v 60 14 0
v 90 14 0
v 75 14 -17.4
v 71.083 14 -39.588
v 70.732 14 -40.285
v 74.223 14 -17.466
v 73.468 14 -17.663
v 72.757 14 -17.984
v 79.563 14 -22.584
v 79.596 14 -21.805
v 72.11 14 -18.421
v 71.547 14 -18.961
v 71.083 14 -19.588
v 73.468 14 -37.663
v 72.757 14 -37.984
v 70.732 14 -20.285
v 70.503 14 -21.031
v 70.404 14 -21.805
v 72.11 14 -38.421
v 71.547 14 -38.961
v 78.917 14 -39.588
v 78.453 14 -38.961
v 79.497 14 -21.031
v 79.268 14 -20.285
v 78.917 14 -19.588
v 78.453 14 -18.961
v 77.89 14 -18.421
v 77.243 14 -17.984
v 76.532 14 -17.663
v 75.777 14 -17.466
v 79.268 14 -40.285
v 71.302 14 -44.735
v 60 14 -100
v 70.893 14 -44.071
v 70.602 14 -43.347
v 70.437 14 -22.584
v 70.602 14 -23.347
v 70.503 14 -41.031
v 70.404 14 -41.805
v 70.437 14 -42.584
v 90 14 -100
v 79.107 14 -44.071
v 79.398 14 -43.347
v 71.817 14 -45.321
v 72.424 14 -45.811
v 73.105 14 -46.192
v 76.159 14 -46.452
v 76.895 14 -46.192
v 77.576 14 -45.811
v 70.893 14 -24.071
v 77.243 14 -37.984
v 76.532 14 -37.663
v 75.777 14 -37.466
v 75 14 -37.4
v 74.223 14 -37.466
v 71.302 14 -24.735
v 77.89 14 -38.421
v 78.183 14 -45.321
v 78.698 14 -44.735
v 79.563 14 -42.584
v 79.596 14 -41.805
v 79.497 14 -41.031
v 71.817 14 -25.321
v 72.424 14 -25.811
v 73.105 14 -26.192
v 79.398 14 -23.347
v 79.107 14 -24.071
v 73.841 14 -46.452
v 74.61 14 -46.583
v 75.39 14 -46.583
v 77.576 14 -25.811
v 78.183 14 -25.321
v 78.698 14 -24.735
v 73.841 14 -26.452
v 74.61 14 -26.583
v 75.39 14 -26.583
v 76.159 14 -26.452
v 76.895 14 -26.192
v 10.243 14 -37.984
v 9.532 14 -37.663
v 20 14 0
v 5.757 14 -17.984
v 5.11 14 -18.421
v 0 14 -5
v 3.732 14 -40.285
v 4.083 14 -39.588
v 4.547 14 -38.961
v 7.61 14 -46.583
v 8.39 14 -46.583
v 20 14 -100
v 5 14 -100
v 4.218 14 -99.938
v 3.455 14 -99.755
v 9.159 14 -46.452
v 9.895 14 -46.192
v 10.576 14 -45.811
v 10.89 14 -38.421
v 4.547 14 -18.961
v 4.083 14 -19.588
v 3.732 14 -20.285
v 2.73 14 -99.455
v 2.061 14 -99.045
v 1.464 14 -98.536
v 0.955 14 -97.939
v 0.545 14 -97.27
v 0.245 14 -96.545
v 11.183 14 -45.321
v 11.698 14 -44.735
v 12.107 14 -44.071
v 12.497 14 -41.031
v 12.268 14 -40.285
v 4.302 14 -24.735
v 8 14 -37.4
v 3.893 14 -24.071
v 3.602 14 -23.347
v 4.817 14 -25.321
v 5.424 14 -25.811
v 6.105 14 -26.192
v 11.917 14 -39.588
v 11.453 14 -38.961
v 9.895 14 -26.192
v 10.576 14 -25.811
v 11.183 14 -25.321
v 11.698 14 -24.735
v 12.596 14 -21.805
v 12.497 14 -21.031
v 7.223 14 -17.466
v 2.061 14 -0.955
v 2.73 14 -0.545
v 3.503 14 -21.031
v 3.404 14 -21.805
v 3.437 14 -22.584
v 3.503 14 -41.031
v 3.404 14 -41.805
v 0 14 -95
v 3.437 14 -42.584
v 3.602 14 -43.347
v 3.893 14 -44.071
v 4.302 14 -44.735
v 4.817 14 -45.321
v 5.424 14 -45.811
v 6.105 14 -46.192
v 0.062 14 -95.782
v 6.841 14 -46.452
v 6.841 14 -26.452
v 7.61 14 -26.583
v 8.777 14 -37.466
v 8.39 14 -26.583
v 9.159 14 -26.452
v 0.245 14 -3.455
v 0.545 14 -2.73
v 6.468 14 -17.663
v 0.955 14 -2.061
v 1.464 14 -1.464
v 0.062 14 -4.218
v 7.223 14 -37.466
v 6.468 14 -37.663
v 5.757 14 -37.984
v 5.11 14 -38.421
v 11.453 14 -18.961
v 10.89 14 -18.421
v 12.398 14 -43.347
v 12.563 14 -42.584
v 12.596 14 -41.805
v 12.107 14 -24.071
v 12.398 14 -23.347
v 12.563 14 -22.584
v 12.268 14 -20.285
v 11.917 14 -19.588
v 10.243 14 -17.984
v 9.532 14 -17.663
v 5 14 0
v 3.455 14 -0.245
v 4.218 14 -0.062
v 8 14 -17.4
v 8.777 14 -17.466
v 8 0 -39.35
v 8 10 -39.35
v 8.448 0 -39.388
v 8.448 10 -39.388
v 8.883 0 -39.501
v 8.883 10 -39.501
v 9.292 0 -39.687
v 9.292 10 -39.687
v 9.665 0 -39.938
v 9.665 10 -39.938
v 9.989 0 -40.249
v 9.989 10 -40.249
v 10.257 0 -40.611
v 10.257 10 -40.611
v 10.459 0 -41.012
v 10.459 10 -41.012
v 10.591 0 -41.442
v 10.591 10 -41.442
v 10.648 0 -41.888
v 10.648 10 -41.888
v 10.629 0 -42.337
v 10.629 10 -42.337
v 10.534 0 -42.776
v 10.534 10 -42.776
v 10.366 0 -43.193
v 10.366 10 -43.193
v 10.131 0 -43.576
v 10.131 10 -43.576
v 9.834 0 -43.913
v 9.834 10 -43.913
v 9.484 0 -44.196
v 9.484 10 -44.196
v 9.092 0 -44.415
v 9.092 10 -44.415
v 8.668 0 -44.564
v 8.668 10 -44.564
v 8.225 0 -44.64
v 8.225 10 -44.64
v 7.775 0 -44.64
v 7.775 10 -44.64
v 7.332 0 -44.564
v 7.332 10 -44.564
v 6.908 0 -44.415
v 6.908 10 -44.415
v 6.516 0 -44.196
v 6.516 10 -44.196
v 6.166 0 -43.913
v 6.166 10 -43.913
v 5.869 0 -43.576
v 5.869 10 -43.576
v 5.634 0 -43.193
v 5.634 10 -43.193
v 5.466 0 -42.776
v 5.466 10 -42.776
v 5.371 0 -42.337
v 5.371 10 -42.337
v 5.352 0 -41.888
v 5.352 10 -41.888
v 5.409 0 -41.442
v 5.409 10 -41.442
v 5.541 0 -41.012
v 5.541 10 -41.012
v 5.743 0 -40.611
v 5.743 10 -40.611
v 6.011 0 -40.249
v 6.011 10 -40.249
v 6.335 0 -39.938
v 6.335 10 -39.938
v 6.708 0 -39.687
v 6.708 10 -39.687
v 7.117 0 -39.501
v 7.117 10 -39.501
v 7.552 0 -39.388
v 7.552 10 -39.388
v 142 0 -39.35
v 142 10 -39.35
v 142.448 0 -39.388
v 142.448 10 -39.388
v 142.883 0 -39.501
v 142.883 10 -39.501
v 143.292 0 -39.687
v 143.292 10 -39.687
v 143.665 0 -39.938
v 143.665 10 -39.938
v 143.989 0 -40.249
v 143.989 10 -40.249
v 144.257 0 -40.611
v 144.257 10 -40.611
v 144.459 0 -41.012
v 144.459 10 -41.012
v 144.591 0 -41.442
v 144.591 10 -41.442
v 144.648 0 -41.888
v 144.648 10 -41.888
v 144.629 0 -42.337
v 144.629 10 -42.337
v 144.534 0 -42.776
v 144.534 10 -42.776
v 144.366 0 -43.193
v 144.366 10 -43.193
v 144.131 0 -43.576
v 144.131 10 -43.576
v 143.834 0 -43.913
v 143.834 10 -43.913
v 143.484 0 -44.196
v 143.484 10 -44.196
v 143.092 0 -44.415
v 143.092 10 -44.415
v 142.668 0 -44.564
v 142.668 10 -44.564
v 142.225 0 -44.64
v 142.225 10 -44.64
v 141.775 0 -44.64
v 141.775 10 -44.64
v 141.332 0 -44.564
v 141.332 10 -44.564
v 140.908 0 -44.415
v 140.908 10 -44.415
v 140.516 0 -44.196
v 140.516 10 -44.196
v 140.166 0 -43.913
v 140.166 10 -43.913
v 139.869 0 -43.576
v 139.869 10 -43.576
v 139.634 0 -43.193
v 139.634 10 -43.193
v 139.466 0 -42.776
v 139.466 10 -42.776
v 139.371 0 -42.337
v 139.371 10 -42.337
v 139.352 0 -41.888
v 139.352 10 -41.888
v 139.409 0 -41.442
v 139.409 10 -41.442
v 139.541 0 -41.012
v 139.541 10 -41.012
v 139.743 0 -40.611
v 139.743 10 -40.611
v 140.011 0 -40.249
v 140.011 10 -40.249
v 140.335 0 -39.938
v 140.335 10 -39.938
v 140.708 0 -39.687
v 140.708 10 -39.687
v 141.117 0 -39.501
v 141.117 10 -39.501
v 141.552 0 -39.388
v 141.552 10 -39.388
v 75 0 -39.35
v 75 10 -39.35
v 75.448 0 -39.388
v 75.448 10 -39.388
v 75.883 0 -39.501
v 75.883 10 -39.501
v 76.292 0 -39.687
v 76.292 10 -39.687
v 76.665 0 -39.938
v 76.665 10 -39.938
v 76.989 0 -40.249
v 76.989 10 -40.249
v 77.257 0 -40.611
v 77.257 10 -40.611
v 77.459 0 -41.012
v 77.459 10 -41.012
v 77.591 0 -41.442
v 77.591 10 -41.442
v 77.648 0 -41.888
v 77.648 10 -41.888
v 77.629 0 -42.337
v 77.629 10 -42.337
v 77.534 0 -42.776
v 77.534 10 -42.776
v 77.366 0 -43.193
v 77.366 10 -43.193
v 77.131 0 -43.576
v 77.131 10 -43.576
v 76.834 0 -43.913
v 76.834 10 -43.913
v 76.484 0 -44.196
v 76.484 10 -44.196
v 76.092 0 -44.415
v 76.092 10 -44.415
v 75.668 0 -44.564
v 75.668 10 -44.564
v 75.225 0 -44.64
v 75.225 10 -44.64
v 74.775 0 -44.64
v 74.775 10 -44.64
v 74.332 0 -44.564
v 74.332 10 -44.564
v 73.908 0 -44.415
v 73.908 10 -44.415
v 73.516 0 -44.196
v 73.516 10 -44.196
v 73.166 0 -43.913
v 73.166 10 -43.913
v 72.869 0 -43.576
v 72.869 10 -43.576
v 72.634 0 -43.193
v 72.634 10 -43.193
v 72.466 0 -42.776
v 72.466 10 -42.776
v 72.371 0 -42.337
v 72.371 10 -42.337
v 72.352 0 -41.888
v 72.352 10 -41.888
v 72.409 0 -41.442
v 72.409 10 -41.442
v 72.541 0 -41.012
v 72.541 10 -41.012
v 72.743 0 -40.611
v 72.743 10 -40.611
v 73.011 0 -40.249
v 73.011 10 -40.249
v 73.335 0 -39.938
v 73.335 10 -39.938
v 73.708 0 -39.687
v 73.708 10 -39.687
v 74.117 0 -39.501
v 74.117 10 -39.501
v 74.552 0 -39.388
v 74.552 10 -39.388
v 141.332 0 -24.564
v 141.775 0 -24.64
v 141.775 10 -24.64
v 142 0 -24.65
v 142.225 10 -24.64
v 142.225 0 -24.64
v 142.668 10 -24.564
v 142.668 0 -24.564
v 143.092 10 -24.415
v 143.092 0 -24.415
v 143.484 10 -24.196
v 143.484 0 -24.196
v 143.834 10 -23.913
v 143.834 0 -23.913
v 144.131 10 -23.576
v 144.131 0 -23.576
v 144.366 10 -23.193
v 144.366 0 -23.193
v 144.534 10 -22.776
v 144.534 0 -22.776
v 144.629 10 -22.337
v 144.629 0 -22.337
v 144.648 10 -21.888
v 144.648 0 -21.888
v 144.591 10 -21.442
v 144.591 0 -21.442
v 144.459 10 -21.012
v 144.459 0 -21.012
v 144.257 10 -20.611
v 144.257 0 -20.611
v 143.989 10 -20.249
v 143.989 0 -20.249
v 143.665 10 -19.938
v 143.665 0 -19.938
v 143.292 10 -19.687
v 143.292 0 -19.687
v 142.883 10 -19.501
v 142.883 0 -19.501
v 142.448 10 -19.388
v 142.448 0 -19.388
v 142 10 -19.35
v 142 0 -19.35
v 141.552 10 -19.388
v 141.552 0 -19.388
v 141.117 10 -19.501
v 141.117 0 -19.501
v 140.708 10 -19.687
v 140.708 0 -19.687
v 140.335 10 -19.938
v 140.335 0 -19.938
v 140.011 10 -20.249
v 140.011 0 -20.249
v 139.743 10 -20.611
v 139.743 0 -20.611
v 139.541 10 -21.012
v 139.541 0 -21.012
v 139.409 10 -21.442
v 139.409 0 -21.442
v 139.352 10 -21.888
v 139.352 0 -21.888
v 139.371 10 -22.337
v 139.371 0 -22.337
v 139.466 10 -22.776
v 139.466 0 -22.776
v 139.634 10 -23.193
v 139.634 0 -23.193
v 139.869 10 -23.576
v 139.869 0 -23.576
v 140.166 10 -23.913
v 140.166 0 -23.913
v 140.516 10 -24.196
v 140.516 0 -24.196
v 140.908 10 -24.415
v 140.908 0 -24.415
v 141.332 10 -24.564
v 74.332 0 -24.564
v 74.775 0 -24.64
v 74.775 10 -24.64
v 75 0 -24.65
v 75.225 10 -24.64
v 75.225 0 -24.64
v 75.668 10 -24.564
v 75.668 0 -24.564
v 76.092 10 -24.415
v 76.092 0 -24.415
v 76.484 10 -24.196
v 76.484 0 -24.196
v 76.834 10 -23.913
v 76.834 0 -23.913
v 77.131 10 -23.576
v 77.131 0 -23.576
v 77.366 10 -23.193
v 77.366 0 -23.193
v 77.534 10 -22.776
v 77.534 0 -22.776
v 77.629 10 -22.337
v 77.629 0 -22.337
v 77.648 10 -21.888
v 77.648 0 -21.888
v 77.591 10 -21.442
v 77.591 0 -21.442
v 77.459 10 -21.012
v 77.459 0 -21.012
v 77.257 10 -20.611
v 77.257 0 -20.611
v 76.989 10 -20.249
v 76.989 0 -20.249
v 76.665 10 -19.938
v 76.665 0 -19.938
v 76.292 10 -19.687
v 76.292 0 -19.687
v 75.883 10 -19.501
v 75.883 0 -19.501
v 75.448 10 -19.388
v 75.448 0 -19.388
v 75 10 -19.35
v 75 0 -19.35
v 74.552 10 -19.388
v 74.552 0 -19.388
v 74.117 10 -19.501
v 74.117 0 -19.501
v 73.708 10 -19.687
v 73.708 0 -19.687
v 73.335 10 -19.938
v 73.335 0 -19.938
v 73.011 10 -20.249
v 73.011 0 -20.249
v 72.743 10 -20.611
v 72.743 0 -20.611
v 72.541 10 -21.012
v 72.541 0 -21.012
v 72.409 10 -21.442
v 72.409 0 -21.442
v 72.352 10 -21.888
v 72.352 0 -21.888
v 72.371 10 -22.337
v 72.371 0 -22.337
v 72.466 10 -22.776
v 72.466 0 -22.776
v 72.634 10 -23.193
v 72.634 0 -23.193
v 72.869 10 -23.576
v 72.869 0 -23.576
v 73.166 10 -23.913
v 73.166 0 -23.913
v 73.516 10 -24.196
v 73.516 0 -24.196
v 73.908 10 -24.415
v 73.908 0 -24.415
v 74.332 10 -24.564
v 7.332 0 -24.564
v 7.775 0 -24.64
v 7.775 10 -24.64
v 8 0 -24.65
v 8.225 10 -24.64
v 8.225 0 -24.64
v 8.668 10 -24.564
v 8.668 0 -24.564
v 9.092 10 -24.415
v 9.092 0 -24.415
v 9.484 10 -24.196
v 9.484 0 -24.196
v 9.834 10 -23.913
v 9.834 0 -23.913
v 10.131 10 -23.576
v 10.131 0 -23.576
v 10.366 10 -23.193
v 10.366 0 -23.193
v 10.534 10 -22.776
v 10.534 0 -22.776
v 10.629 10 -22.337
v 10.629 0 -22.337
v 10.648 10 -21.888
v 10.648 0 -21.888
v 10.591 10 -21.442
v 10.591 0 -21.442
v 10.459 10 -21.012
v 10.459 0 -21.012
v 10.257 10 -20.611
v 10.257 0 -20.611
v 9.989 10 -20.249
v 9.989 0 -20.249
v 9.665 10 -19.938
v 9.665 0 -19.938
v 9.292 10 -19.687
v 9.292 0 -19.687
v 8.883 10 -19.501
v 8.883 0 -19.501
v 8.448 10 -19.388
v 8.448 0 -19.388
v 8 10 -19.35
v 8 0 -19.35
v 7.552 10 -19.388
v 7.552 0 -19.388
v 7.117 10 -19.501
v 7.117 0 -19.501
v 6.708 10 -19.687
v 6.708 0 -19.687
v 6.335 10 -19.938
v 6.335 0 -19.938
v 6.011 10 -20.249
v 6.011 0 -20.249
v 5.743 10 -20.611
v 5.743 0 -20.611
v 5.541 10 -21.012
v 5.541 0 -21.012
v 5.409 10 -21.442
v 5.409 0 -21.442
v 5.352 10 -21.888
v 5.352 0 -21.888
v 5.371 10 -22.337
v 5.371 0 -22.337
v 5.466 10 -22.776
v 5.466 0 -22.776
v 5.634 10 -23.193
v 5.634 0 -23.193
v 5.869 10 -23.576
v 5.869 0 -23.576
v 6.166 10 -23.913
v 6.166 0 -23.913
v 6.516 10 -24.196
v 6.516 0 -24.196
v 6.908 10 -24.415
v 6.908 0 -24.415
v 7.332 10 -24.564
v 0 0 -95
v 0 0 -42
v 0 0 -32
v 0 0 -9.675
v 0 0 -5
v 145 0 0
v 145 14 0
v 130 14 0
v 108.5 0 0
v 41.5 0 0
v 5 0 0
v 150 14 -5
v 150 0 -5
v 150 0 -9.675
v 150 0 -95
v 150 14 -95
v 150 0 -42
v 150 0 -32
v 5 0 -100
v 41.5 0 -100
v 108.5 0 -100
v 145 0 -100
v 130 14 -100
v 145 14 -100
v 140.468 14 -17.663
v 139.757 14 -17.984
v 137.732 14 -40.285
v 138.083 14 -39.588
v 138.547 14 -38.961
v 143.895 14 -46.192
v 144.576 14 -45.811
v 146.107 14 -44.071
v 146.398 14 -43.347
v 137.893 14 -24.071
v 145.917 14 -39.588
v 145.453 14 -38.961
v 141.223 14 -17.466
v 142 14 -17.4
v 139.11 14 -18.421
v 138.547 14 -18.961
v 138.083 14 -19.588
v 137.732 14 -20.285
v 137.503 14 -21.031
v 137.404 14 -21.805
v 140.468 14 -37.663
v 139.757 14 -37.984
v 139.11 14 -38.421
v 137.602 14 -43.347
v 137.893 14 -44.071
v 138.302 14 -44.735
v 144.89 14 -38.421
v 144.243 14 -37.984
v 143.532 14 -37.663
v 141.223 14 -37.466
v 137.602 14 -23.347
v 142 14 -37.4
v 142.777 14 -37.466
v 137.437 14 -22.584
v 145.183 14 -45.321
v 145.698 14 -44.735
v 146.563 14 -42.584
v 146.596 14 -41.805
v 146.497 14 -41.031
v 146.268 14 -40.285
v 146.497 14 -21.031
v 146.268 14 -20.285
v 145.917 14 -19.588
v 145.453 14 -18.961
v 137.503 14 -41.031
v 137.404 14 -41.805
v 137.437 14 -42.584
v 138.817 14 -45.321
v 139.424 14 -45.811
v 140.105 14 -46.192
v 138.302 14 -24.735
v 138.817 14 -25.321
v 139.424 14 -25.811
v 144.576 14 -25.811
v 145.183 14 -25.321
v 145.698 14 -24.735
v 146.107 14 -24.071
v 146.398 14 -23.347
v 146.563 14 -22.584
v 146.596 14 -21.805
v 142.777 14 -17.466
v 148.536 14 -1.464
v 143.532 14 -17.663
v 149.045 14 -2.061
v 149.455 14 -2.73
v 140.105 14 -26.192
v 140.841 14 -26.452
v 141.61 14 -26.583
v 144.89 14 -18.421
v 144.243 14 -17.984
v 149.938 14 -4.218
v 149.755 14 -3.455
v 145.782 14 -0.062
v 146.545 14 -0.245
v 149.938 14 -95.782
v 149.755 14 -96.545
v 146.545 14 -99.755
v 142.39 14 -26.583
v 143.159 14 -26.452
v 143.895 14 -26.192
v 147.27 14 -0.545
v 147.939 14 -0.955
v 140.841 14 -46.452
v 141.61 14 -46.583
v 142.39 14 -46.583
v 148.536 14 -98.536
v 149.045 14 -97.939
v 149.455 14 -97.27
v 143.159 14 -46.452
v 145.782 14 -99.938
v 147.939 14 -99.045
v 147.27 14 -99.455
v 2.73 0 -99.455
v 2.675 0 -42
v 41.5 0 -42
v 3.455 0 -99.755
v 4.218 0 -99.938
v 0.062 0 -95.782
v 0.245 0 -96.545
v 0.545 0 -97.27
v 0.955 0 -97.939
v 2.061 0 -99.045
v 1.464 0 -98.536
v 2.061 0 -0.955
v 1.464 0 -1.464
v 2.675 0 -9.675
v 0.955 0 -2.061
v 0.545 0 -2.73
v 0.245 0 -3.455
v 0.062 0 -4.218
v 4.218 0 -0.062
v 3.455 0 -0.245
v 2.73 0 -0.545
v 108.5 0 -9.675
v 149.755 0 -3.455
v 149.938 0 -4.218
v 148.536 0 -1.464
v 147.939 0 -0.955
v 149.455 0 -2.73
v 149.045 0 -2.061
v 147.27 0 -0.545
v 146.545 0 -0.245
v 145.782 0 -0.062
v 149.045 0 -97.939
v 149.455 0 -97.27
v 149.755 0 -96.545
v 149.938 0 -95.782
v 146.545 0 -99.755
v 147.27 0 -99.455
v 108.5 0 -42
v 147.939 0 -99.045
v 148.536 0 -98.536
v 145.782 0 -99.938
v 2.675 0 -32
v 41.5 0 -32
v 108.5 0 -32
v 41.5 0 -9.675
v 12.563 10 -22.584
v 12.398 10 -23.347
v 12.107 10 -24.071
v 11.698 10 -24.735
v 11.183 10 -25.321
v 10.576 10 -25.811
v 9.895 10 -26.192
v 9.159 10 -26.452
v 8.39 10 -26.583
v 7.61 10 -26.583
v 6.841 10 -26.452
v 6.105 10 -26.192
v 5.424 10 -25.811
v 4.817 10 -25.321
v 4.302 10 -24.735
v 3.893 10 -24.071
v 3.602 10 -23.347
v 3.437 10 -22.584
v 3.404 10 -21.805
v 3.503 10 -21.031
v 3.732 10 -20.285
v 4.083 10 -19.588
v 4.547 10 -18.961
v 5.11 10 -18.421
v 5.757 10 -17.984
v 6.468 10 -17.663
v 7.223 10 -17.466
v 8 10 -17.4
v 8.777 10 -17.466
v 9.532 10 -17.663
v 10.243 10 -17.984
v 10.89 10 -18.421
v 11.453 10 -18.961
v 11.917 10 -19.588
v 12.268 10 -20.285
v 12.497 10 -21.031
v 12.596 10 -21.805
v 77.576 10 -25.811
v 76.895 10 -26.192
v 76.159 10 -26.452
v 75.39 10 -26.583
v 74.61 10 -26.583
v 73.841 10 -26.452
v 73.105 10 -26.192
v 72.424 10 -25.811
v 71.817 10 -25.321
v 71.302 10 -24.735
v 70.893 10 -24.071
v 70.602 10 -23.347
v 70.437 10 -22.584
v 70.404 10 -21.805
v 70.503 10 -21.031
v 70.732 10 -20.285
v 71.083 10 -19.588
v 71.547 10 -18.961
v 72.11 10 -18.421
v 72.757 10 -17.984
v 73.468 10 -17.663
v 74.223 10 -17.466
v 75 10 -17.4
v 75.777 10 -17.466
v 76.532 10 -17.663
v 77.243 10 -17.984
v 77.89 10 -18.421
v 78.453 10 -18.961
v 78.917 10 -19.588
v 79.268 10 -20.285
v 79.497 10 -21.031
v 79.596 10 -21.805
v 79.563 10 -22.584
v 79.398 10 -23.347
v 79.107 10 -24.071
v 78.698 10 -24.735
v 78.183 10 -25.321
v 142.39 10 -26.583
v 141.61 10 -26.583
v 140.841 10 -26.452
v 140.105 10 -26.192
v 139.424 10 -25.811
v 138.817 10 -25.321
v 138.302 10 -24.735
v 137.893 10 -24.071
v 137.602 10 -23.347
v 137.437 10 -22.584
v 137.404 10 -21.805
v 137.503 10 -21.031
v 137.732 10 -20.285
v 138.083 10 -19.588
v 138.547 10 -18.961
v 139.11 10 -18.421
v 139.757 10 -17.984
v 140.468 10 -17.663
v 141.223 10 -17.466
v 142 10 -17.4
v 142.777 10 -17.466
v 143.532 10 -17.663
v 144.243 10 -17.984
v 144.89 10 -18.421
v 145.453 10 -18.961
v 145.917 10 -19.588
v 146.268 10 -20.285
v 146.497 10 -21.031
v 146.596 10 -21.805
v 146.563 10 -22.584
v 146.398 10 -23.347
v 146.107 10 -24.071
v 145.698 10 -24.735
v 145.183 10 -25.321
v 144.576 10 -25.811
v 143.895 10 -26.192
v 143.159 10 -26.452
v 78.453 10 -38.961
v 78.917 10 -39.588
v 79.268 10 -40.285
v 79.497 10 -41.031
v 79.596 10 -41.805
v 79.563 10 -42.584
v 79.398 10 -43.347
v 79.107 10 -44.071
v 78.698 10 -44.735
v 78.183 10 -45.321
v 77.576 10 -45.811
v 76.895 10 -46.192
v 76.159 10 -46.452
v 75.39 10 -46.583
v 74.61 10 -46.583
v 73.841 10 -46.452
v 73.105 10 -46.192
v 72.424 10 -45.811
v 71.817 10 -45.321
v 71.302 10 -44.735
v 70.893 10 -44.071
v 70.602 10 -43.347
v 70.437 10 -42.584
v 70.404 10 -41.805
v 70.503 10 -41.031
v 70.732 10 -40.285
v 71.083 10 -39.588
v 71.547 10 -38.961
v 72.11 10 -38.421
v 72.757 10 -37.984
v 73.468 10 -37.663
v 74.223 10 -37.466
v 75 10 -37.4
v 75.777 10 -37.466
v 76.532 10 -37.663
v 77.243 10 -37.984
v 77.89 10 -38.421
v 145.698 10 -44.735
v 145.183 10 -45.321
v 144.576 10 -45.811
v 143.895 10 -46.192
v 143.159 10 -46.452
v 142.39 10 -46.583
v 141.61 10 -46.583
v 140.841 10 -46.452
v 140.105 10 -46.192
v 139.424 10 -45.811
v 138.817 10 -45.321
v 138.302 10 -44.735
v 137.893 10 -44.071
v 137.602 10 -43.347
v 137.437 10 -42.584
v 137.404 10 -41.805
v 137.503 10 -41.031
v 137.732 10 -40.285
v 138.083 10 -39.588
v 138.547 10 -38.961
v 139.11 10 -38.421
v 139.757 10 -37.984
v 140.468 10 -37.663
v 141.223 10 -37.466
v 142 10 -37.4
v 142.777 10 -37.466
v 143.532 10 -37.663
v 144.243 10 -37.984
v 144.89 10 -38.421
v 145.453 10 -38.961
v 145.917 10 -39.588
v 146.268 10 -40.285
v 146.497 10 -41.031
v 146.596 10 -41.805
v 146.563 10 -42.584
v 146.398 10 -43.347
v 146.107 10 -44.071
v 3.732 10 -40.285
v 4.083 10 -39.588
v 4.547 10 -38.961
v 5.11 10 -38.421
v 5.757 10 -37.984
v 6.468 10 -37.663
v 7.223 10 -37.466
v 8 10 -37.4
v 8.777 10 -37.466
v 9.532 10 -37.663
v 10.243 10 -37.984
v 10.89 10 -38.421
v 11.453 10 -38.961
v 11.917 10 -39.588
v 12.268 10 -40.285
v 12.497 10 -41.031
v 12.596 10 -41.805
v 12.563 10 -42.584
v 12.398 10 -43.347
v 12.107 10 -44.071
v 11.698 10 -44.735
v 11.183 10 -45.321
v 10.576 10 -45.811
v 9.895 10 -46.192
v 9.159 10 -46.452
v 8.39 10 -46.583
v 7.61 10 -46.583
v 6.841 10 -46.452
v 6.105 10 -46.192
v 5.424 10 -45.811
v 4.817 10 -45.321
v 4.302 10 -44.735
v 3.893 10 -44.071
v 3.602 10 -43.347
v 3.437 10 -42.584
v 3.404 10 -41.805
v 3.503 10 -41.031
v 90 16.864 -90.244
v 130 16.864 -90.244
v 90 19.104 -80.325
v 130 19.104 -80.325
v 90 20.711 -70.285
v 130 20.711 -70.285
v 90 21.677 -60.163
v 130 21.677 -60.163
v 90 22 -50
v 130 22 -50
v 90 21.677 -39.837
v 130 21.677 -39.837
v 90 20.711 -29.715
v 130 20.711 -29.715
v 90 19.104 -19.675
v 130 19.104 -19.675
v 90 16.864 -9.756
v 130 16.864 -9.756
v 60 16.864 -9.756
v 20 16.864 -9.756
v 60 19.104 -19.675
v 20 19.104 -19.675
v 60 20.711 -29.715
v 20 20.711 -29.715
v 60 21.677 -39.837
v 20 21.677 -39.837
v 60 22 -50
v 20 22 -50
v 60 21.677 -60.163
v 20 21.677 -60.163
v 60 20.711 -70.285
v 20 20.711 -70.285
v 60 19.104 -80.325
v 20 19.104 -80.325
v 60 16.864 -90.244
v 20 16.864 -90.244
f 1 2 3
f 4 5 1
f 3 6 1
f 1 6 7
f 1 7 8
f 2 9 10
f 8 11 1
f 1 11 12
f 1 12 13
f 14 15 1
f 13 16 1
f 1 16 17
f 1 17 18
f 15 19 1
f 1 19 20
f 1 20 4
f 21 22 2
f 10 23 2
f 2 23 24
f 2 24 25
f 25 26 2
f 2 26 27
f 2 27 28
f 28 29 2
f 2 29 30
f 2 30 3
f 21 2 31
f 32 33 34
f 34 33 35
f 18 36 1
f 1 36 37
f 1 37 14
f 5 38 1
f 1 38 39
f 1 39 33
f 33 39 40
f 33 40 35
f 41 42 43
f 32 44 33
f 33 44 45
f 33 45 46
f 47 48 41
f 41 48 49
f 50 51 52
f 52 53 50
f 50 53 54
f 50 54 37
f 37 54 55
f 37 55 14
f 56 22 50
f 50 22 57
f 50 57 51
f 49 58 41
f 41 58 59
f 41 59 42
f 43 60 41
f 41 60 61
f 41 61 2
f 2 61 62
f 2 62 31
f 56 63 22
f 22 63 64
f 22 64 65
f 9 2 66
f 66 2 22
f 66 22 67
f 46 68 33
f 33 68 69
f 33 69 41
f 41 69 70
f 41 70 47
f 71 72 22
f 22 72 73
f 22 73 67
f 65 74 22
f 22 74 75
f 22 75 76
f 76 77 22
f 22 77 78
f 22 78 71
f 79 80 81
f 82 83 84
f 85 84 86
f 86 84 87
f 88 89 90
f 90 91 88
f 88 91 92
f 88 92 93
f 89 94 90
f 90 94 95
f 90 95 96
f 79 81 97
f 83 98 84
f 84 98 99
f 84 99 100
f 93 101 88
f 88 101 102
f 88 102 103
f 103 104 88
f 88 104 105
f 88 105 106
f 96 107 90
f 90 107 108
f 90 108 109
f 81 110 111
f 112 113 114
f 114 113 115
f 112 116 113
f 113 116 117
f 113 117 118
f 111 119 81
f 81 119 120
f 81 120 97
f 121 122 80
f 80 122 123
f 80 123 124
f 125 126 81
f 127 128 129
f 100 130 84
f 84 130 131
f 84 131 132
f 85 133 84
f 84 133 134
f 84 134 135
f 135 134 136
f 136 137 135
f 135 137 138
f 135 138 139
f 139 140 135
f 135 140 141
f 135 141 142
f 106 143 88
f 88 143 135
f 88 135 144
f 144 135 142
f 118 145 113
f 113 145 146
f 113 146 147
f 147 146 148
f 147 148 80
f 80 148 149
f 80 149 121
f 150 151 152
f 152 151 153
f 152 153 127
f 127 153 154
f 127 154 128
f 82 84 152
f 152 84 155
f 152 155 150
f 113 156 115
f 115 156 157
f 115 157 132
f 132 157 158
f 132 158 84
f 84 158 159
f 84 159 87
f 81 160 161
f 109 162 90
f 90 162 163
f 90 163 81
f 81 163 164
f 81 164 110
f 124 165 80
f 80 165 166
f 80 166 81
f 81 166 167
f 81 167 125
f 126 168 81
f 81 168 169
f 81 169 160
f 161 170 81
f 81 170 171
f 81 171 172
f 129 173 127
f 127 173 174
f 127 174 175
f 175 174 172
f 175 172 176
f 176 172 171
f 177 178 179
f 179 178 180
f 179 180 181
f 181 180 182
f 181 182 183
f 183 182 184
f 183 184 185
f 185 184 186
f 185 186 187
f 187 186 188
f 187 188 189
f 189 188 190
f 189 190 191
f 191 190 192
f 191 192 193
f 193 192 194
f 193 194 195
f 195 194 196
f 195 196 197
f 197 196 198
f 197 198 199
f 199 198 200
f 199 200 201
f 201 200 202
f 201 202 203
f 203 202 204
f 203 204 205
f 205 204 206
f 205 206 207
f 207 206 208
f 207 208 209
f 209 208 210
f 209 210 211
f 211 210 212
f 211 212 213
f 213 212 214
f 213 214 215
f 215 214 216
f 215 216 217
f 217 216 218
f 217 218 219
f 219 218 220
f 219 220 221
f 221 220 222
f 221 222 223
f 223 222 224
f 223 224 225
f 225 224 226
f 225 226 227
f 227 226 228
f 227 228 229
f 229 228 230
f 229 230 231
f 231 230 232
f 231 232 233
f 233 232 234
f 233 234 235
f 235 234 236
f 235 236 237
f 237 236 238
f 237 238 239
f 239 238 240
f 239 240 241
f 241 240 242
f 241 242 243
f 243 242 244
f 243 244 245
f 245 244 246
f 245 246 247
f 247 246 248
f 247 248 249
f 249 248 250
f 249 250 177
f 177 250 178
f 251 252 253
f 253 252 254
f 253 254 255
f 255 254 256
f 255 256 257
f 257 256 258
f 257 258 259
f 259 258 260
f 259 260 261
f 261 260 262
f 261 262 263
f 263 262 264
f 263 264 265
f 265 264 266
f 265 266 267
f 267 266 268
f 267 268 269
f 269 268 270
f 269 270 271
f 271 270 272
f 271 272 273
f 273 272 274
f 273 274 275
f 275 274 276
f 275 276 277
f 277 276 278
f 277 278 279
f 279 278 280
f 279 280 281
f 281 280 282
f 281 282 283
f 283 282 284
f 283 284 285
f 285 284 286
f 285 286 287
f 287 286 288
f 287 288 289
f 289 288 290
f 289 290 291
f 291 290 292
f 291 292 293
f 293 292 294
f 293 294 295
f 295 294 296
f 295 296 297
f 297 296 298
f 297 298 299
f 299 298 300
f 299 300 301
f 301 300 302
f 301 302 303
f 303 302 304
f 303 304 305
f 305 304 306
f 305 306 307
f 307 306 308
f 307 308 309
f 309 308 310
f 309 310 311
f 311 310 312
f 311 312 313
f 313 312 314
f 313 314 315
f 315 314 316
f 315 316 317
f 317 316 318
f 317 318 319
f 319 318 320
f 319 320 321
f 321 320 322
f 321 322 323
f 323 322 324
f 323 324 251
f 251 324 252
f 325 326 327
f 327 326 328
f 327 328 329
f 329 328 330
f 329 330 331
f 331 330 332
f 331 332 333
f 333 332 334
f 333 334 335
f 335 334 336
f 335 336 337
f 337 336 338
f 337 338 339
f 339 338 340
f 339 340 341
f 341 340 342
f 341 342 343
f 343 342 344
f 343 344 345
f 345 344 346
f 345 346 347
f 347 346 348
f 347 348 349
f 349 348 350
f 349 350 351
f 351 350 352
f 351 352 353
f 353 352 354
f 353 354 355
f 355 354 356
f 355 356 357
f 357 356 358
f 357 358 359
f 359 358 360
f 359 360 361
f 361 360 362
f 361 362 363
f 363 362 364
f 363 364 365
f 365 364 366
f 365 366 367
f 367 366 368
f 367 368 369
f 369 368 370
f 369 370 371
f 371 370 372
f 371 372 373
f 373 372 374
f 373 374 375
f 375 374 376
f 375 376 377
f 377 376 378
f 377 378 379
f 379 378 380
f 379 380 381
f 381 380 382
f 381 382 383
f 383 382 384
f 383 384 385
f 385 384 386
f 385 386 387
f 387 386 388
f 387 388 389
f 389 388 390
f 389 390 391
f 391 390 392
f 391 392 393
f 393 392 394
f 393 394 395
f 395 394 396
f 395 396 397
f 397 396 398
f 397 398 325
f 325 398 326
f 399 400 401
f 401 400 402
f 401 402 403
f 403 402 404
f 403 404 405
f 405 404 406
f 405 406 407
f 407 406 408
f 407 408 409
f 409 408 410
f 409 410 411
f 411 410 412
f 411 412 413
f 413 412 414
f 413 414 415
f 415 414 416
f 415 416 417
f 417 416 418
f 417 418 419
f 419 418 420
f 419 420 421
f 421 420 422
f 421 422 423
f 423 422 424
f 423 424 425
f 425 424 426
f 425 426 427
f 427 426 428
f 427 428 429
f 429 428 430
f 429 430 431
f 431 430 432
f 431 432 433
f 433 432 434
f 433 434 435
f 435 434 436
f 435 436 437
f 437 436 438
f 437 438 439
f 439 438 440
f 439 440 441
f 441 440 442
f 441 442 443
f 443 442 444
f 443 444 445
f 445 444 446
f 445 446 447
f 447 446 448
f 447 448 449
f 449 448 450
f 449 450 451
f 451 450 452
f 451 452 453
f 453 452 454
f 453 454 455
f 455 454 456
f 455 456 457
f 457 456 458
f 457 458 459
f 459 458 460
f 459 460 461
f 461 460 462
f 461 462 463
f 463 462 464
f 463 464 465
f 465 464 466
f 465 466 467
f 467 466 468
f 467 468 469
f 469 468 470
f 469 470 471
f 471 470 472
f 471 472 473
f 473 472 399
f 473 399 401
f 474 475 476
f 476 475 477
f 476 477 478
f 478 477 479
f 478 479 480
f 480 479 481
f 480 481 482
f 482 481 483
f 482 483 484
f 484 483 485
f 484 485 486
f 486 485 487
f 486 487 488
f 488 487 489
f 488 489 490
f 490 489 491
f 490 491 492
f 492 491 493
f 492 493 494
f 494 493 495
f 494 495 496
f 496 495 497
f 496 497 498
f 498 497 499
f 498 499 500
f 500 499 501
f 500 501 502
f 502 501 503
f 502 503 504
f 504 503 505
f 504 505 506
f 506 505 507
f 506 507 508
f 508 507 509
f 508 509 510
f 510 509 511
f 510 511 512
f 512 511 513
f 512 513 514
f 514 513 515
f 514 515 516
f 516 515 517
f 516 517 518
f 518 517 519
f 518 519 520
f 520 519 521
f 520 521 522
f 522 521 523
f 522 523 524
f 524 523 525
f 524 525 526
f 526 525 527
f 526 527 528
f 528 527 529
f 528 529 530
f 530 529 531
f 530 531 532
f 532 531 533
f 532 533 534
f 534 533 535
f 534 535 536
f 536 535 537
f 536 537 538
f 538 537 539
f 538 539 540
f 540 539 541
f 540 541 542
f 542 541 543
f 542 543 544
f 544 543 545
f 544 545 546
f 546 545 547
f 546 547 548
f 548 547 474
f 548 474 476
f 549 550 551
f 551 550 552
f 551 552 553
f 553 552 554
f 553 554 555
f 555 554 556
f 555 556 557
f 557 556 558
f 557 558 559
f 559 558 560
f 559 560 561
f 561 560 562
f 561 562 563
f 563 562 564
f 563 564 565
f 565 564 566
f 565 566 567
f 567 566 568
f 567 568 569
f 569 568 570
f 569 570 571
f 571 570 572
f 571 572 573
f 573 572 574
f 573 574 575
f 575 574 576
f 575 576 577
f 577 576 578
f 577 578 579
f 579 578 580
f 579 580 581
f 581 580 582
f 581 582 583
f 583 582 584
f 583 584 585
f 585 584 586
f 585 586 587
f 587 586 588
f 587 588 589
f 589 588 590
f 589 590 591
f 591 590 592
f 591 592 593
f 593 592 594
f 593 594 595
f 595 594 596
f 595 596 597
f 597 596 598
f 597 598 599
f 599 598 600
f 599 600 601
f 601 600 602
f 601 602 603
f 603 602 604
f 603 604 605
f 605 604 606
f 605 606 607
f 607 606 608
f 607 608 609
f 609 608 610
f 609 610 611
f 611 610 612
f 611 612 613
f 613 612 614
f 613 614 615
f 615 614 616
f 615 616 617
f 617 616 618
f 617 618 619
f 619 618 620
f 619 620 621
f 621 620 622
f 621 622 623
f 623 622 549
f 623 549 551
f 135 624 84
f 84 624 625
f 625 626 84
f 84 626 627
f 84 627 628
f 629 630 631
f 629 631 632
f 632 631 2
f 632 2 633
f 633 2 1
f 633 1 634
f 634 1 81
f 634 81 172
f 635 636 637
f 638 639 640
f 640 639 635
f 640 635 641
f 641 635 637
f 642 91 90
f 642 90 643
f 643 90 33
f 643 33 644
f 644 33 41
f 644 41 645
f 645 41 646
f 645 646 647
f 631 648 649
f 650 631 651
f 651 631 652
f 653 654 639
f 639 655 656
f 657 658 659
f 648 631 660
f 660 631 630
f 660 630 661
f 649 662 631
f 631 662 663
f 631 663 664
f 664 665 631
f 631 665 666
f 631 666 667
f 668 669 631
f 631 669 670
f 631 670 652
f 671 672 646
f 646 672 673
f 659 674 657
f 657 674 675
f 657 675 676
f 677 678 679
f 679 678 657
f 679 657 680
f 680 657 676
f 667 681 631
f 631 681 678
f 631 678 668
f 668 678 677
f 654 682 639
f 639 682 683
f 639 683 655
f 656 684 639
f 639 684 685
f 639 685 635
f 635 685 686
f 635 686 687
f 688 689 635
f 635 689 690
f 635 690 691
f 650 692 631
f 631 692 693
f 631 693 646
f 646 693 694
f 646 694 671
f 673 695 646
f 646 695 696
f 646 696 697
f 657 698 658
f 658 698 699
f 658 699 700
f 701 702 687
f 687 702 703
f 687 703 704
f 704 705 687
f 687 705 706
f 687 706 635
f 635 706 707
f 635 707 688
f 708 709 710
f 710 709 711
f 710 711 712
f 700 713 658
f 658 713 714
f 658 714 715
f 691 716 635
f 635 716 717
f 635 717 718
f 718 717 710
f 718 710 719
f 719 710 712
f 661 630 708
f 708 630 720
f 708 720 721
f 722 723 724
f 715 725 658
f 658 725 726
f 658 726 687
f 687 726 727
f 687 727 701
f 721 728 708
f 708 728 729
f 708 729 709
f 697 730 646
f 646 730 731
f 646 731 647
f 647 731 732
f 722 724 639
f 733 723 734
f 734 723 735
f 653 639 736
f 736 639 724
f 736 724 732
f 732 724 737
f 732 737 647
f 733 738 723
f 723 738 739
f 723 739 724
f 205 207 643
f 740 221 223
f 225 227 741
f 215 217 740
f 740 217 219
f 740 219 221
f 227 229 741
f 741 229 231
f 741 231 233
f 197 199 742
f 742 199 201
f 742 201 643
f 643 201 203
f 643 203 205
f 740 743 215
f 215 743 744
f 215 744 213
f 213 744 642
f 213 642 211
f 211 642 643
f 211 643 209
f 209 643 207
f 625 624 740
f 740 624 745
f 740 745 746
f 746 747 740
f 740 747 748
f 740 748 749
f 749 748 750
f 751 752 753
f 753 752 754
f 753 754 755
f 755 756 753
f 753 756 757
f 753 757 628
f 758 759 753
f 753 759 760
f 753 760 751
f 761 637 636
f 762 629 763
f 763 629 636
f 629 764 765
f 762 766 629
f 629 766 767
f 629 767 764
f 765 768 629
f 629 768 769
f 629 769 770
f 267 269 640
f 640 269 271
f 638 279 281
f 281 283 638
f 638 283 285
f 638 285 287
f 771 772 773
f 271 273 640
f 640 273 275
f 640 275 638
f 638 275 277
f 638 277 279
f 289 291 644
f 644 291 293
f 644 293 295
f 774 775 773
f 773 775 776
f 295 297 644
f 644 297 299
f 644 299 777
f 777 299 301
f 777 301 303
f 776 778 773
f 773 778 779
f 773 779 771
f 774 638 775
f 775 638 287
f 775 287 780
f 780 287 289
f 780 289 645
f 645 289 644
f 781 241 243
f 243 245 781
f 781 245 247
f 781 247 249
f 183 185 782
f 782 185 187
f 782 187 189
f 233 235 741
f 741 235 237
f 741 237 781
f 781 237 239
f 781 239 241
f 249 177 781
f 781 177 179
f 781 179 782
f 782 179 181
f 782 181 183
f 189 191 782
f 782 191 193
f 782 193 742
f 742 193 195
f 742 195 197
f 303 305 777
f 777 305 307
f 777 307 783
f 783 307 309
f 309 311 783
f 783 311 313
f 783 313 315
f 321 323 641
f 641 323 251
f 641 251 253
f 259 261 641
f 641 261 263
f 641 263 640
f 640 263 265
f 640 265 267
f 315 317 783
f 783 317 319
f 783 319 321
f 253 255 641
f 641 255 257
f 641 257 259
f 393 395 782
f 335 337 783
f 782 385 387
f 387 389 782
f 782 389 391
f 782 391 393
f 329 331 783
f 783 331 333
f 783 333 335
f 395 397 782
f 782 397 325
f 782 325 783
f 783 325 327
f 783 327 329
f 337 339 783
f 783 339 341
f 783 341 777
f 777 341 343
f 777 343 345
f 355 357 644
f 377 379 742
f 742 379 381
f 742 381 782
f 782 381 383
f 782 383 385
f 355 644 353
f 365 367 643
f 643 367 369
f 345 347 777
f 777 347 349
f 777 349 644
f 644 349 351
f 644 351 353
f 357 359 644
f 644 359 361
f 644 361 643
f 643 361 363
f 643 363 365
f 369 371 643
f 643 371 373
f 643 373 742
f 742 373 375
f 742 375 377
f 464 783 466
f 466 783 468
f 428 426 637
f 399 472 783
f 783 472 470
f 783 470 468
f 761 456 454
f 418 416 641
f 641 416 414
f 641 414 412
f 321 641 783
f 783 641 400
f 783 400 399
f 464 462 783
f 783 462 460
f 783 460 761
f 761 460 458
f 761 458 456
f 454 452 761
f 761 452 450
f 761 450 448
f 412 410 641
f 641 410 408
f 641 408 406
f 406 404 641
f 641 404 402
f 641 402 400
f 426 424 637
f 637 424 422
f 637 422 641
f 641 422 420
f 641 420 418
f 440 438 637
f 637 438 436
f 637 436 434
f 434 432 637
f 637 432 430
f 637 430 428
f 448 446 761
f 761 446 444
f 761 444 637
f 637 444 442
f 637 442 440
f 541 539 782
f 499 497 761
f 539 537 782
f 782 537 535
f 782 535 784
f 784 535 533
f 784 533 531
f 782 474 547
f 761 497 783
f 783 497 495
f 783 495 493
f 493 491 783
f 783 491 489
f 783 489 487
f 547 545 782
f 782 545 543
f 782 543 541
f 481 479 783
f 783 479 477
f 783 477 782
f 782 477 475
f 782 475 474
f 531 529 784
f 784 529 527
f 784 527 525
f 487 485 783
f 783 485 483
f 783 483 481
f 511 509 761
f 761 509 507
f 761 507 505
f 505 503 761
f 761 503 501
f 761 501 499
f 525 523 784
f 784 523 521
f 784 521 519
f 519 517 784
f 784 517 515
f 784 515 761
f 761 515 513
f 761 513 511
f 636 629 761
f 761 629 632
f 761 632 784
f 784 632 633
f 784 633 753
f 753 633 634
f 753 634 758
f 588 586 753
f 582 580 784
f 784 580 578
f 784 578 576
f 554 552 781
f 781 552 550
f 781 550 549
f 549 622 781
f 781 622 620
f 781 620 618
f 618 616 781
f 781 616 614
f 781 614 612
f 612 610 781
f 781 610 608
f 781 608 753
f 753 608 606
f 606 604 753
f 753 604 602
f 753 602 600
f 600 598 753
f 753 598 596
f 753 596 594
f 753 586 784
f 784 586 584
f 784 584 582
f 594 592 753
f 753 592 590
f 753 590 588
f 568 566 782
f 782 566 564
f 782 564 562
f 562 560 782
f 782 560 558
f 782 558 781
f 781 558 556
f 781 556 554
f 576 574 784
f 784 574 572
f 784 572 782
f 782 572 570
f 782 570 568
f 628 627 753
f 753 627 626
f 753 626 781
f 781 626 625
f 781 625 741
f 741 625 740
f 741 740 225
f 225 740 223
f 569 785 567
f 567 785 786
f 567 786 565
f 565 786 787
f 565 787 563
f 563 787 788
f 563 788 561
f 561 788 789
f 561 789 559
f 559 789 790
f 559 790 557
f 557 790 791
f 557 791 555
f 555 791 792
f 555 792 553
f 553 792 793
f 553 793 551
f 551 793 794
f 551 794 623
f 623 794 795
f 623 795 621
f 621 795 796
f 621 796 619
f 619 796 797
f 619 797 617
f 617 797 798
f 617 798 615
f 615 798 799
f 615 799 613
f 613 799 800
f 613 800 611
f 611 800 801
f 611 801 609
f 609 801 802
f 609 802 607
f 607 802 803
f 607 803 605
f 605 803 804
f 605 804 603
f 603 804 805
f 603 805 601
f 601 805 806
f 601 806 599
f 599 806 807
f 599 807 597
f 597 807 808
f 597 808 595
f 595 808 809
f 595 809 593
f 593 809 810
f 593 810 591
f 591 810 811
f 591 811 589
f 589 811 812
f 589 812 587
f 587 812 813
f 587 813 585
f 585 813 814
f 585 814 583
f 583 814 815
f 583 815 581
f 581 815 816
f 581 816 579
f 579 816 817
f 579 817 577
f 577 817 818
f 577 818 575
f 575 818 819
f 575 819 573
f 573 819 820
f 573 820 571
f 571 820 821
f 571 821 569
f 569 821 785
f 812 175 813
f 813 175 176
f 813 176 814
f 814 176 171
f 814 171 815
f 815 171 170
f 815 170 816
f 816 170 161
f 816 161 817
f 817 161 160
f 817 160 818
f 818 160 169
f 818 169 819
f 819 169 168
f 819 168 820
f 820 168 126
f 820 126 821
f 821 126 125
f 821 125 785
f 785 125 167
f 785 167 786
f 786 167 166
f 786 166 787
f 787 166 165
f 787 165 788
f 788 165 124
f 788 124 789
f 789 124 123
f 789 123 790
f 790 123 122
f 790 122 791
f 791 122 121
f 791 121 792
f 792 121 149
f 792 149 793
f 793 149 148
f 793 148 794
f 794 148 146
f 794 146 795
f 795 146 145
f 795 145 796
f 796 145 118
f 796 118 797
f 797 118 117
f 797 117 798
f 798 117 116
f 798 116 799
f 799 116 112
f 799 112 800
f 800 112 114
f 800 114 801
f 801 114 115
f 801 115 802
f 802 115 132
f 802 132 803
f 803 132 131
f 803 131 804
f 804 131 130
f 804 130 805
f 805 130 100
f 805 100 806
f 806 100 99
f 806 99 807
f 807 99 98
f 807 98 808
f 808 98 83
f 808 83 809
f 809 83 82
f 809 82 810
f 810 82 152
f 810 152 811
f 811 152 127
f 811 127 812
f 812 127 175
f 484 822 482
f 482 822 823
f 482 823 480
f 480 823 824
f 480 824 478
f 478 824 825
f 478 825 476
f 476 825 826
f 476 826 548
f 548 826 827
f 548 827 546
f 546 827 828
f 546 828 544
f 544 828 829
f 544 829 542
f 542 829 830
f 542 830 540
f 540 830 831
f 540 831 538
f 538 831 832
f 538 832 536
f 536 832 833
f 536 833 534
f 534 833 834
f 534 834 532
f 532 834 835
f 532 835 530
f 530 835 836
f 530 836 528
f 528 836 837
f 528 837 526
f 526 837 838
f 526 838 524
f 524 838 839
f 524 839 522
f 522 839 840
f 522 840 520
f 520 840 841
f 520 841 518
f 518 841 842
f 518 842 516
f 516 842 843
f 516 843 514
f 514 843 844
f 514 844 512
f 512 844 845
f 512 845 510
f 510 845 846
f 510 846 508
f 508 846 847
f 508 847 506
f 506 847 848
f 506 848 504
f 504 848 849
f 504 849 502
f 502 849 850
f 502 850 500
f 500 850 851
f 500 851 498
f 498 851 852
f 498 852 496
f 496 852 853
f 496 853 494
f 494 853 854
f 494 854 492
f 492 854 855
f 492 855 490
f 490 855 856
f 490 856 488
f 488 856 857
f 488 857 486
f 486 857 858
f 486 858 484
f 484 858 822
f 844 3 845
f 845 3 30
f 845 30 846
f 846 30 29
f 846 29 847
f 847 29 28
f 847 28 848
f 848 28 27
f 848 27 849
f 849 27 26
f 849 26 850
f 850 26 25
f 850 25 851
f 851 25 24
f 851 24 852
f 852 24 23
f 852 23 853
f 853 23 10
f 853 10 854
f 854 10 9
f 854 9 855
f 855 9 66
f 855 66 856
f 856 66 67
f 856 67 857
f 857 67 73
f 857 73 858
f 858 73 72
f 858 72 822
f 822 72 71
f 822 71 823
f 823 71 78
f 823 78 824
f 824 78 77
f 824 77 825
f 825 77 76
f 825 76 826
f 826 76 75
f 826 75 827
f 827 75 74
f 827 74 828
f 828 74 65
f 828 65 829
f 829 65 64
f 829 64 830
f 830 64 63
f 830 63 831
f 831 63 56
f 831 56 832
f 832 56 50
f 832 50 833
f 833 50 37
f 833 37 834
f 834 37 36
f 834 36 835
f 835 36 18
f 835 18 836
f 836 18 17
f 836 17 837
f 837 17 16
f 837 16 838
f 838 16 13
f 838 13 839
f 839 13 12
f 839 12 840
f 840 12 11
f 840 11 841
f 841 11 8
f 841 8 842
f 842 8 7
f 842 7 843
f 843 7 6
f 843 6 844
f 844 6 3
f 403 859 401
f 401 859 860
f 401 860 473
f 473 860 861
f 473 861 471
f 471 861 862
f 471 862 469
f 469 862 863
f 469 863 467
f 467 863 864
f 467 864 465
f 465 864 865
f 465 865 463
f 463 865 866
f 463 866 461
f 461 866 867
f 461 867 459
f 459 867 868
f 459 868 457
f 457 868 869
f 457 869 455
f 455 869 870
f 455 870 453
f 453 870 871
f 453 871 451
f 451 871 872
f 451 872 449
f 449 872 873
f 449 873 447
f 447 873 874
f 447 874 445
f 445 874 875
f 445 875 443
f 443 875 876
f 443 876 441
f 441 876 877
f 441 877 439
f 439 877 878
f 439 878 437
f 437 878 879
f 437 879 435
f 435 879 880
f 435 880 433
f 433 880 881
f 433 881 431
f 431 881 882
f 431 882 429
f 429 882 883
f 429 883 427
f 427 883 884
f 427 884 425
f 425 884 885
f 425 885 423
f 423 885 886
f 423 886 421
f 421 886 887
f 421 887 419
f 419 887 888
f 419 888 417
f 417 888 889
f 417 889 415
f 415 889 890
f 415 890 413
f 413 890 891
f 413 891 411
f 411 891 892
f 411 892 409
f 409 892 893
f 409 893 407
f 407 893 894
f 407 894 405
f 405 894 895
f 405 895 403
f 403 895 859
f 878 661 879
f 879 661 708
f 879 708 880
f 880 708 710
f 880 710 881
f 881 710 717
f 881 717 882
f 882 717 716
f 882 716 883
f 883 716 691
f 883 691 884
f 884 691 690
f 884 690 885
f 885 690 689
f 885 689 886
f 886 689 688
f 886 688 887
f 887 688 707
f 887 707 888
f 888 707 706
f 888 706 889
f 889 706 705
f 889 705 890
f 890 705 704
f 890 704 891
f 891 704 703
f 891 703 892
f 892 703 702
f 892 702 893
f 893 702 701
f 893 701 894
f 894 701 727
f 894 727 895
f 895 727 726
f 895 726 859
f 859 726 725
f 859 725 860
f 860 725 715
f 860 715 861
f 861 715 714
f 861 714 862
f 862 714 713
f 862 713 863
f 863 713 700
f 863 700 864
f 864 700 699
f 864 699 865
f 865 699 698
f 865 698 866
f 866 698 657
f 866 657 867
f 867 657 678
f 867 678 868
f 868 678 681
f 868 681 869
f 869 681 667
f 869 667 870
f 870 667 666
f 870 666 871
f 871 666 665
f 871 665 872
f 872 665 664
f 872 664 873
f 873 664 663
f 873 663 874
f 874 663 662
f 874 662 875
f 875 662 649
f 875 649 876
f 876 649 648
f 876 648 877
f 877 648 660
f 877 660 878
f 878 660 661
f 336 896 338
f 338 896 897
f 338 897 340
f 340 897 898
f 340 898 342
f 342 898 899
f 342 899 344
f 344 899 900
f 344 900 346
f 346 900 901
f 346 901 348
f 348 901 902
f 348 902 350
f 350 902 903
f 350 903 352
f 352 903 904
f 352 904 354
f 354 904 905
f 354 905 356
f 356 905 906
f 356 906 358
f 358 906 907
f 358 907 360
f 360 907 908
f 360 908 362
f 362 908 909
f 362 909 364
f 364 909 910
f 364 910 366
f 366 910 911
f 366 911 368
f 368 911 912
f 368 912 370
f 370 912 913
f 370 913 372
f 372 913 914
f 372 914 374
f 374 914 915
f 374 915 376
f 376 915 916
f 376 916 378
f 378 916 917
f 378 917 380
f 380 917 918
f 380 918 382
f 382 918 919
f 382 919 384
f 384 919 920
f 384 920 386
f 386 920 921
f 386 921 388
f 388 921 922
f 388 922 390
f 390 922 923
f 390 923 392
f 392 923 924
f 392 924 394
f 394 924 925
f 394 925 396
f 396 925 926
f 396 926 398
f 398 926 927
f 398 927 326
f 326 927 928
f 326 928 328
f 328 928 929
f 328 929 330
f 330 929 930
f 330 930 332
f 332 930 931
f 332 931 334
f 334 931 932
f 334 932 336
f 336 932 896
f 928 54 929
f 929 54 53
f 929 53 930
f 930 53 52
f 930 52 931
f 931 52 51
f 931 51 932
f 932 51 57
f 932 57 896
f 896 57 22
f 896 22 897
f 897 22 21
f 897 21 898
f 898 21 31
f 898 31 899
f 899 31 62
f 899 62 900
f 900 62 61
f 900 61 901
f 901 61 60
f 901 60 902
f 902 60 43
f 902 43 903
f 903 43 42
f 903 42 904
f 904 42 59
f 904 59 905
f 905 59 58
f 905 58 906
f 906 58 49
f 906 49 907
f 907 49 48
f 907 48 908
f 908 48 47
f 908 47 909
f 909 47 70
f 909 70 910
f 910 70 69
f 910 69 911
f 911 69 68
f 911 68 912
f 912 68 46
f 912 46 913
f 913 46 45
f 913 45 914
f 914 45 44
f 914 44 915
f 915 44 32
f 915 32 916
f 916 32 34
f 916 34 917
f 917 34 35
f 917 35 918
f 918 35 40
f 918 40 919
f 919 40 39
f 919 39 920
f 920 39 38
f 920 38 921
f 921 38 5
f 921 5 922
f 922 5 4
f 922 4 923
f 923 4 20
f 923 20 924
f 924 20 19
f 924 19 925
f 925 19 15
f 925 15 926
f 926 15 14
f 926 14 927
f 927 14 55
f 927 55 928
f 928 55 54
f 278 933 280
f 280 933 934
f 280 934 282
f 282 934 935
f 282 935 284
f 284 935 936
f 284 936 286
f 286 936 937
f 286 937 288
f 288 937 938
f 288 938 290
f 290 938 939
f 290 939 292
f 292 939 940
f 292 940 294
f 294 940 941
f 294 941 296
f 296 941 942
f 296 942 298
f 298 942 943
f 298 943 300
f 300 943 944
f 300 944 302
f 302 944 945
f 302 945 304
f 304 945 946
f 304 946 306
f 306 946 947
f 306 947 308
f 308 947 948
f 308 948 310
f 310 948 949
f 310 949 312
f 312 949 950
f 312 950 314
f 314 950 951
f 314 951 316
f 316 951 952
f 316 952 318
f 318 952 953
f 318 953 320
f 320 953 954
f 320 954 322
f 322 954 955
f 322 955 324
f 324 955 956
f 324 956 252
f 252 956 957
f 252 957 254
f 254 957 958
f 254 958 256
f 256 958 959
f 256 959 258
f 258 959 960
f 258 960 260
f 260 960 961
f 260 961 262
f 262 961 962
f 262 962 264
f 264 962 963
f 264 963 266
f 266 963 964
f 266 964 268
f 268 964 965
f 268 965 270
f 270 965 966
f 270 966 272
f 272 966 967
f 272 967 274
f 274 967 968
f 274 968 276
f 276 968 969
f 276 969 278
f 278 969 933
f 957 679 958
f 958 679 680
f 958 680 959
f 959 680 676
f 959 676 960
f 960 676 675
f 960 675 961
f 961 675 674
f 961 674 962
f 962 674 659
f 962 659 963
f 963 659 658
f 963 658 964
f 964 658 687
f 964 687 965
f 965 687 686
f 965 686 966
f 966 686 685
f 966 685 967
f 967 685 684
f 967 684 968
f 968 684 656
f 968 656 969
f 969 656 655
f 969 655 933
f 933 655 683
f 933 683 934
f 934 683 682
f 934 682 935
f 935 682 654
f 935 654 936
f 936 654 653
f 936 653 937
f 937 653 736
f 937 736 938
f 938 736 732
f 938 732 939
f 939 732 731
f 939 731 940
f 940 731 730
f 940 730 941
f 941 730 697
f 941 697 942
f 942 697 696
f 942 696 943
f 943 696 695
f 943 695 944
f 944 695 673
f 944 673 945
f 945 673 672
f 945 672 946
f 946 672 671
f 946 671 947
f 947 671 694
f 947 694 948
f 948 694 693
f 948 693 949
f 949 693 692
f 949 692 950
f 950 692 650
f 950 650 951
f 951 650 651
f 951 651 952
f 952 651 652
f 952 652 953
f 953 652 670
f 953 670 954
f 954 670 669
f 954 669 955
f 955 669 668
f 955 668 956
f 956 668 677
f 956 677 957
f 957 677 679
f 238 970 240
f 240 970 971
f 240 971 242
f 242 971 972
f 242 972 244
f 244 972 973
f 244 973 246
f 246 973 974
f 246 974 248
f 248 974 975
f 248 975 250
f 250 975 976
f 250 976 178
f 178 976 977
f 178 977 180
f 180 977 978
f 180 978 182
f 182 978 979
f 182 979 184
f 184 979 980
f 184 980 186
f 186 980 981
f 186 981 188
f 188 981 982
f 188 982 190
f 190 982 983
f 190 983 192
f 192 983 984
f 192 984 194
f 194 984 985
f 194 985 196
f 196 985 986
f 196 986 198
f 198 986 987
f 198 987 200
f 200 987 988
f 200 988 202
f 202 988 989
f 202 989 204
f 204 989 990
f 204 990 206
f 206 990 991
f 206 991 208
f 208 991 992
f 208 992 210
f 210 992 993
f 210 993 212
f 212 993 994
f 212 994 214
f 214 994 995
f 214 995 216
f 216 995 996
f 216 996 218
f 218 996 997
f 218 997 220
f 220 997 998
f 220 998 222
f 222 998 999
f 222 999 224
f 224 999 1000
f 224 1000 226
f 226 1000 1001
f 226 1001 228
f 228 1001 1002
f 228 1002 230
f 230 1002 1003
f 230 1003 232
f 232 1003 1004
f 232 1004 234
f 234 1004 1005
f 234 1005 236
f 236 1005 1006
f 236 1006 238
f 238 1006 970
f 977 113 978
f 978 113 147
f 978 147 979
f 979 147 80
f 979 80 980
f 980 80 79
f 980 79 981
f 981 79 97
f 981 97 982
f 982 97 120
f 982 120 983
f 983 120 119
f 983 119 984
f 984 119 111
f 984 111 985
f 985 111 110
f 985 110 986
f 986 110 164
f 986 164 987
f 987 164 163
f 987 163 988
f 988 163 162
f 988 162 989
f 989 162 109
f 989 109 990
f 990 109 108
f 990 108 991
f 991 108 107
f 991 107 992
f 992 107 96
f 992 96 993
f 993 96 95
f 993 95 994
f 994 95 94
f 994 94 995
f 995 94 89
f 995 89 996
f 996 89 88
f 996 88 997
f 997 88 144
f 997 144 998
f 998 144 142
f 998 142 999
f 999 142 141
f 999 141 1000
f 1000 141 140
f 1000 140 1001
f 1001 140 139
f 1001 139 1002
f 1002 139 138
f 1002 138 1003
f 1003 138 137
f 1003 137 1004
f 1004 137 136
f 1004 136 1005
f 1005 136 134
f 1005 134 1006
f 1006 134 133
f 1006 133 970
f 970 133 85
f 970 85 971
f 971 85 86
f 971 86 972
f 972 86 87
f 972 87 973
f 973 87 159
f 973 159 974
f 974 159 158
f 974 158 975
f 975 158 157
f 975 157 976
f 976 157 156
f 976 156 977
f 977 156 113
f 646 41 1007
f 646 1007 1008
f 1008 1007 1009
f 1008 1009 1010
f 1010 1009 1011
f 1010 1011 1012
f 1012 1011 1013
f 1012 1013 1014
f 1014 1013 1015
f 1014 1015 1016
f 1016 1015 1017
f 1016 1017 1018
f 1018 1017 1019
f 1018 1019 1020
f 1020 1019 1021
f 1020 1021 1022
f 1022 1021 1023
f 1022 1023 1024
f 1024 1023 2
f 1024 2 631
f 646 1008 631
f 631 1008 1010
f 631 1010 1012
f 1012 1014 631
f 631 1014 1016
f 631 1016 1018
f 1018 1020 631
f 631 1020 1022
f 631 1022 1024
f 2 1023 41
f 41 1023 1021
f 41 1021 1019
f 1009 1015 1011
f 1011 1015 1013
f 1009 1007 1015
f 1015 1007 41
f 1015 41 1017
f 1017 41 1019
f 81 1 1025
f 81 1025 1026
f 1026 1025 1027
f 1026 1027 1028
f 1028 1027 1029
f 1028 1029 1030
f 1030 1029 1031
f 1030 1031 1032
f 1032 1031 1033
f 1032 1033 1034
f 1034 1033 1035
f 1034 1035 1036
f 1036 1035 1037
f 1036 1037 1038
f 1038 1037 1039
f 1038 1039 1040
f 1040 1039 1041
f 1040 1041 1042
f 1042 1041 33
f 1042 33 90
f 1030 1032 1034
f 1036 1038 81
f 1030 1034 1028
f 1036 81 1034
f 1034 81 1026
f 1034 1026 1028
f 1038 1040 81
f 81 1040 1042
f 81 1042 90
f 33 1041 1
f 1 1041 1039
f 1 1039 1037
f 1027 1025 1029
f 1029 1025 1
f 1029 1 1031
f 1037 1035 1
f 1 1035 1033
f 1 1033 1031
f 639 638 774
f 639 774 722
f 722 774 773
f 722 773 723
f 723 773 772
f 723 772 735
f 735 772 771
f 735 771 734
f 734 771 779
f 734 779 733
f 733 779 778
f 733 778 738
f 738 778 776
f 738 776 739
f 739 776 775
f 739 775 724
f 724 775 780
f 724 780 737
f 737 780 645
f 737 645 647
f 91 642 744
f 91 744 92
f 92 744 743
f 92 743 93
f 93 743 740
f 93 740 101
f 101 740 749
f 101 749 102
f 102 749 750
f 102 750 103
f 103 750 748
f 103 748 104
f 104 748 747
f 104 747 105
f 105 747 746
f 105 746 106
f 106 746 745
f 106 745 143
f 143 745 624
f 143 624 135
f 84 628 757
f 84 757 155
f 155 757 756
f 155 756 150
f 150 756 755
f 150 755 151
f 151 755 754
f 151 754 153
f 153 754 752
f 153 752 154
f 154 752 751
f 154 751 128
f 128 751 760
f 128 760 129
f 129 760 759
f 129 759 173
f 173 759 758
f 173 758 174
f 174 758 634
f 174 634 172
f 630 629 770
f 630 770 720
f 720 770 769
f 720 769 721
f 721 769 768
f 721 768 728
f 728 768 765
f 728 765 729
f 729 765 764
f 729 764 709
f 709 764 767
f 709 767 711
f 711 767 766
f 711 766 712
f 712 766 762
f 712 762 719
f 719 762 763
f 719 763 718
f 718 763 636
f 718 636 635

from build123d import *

# Parameters (mm, degrees)
SKETCH1_W           = 150
SKETCH1_H           = 100
BOSS_EXTRUDE1_DEPTH = 14
SKETCH2_R           = 2.65
CUT_EXTRUDE1_DEPTH  = 15
SKETCH4_R           = 4.6
CUT_EXTRUDE2_DEPTH  = 4
BOSS_EXTRUDE3_START = 15
BOSS_EXTRUDE3_DEPTH = 40
FILLET1_R           = 5


with BuildPart() as part:
    # Sketch1 → Boss-Extrude1 (new body)
    with BuildSketch(Plane(origin=(0, 0, 0), x_dir=(1, 0, 0), z_dir=(0, 1, 0))):
        with Locations((75, 50)):
            Rectangle(SKETCH1_W, SKETCH1_H)
    extrude(amount=BOSS_EXTRUDE1_DEPTH)

    # Sketch2 → Cut-Extrude1 (cut, through all)
    with BuildSketch(Plane(origin=(0, 14, 0), x_dir=(1, 0, 0), z_dir=(0, 1, 0))):
        with Locations((8, 42)):
            Circle(SKETCH2_R)
        with Locations((142, 42)):
            Circle(SKETCH2_R)
        with Locations((75, 42)):
            Circle(SKETCH2_R)
        with Locations((142, 22)):
            Circle(SKETCH2_R)
        with Locations((75, 22)):
            Circle(SKETCH2_R)
        with Locations((8, 22)):
            Circle(SKETCH2_R)
    extrude(amount=-CUT_EXTRUDE1_DEPTH, mode=Mode.SUBTRACT)

    # Sketch4 → Cut-Extrude2 (cut)
    with BuildSketch(Plane(origin=(0, 14, 0), x_dir=(1, 0, 0), z_dir=(0, 1, 0))):
        with Locations((8, 42)):
            Circle(SKETCH4_R)
        with Locations((75, 42)):
            Circle(SKETCH4_R)
        with Locations((142, 42)):
            Circle(SKETCH4_R)
        with Locations((8, 22)):
            Circle(SKETCH4_R)
        with Locations((75, 22)):
            Circle(SKETCH4_R)
        with Locations((142, 22)):
            Circle(SKETCH4_R)
    extrude(amount=-CUT_EXTRUDE2_DEPTH, mode=Mode.SUBTRACT)

    # Sketch6 → Boss-Extrude3 (add)
    with BuildSketch(Plane(origin=(75, 0, 0), x_dir=(0, 0, -1), z_dir=(1, 0, 0)).offset(BOSS_EXTRUDE3_START)):
        with BuildLine():
            Line((0, 14), (100, 14))
            ThreePointArc((100, 14), (50, 22), (0, 14))
        make_face()
    boss_extrude3 = extrude(amount=BOSS_EXTRUDE3_DEPTH)

    # Mirror1: Boss-Extrude3 across plane
    add(boss_extrude3.mirror(Plane(origin=(75, 0, 0), x_dir=(0, 0, 1), z_dir=(1, 0, 0))))

    # Fillet1
    fillet1_edges = [part.edges().sort_by_distance(p)[0] for p in [
        (0, 7, -100),
        (150, 7, -100),
        (150, 7, 0),
        (0, 7, 0),
    ]]
    fillet(fillet1_edges, radius=FILLET1_R)


solid = part.part
